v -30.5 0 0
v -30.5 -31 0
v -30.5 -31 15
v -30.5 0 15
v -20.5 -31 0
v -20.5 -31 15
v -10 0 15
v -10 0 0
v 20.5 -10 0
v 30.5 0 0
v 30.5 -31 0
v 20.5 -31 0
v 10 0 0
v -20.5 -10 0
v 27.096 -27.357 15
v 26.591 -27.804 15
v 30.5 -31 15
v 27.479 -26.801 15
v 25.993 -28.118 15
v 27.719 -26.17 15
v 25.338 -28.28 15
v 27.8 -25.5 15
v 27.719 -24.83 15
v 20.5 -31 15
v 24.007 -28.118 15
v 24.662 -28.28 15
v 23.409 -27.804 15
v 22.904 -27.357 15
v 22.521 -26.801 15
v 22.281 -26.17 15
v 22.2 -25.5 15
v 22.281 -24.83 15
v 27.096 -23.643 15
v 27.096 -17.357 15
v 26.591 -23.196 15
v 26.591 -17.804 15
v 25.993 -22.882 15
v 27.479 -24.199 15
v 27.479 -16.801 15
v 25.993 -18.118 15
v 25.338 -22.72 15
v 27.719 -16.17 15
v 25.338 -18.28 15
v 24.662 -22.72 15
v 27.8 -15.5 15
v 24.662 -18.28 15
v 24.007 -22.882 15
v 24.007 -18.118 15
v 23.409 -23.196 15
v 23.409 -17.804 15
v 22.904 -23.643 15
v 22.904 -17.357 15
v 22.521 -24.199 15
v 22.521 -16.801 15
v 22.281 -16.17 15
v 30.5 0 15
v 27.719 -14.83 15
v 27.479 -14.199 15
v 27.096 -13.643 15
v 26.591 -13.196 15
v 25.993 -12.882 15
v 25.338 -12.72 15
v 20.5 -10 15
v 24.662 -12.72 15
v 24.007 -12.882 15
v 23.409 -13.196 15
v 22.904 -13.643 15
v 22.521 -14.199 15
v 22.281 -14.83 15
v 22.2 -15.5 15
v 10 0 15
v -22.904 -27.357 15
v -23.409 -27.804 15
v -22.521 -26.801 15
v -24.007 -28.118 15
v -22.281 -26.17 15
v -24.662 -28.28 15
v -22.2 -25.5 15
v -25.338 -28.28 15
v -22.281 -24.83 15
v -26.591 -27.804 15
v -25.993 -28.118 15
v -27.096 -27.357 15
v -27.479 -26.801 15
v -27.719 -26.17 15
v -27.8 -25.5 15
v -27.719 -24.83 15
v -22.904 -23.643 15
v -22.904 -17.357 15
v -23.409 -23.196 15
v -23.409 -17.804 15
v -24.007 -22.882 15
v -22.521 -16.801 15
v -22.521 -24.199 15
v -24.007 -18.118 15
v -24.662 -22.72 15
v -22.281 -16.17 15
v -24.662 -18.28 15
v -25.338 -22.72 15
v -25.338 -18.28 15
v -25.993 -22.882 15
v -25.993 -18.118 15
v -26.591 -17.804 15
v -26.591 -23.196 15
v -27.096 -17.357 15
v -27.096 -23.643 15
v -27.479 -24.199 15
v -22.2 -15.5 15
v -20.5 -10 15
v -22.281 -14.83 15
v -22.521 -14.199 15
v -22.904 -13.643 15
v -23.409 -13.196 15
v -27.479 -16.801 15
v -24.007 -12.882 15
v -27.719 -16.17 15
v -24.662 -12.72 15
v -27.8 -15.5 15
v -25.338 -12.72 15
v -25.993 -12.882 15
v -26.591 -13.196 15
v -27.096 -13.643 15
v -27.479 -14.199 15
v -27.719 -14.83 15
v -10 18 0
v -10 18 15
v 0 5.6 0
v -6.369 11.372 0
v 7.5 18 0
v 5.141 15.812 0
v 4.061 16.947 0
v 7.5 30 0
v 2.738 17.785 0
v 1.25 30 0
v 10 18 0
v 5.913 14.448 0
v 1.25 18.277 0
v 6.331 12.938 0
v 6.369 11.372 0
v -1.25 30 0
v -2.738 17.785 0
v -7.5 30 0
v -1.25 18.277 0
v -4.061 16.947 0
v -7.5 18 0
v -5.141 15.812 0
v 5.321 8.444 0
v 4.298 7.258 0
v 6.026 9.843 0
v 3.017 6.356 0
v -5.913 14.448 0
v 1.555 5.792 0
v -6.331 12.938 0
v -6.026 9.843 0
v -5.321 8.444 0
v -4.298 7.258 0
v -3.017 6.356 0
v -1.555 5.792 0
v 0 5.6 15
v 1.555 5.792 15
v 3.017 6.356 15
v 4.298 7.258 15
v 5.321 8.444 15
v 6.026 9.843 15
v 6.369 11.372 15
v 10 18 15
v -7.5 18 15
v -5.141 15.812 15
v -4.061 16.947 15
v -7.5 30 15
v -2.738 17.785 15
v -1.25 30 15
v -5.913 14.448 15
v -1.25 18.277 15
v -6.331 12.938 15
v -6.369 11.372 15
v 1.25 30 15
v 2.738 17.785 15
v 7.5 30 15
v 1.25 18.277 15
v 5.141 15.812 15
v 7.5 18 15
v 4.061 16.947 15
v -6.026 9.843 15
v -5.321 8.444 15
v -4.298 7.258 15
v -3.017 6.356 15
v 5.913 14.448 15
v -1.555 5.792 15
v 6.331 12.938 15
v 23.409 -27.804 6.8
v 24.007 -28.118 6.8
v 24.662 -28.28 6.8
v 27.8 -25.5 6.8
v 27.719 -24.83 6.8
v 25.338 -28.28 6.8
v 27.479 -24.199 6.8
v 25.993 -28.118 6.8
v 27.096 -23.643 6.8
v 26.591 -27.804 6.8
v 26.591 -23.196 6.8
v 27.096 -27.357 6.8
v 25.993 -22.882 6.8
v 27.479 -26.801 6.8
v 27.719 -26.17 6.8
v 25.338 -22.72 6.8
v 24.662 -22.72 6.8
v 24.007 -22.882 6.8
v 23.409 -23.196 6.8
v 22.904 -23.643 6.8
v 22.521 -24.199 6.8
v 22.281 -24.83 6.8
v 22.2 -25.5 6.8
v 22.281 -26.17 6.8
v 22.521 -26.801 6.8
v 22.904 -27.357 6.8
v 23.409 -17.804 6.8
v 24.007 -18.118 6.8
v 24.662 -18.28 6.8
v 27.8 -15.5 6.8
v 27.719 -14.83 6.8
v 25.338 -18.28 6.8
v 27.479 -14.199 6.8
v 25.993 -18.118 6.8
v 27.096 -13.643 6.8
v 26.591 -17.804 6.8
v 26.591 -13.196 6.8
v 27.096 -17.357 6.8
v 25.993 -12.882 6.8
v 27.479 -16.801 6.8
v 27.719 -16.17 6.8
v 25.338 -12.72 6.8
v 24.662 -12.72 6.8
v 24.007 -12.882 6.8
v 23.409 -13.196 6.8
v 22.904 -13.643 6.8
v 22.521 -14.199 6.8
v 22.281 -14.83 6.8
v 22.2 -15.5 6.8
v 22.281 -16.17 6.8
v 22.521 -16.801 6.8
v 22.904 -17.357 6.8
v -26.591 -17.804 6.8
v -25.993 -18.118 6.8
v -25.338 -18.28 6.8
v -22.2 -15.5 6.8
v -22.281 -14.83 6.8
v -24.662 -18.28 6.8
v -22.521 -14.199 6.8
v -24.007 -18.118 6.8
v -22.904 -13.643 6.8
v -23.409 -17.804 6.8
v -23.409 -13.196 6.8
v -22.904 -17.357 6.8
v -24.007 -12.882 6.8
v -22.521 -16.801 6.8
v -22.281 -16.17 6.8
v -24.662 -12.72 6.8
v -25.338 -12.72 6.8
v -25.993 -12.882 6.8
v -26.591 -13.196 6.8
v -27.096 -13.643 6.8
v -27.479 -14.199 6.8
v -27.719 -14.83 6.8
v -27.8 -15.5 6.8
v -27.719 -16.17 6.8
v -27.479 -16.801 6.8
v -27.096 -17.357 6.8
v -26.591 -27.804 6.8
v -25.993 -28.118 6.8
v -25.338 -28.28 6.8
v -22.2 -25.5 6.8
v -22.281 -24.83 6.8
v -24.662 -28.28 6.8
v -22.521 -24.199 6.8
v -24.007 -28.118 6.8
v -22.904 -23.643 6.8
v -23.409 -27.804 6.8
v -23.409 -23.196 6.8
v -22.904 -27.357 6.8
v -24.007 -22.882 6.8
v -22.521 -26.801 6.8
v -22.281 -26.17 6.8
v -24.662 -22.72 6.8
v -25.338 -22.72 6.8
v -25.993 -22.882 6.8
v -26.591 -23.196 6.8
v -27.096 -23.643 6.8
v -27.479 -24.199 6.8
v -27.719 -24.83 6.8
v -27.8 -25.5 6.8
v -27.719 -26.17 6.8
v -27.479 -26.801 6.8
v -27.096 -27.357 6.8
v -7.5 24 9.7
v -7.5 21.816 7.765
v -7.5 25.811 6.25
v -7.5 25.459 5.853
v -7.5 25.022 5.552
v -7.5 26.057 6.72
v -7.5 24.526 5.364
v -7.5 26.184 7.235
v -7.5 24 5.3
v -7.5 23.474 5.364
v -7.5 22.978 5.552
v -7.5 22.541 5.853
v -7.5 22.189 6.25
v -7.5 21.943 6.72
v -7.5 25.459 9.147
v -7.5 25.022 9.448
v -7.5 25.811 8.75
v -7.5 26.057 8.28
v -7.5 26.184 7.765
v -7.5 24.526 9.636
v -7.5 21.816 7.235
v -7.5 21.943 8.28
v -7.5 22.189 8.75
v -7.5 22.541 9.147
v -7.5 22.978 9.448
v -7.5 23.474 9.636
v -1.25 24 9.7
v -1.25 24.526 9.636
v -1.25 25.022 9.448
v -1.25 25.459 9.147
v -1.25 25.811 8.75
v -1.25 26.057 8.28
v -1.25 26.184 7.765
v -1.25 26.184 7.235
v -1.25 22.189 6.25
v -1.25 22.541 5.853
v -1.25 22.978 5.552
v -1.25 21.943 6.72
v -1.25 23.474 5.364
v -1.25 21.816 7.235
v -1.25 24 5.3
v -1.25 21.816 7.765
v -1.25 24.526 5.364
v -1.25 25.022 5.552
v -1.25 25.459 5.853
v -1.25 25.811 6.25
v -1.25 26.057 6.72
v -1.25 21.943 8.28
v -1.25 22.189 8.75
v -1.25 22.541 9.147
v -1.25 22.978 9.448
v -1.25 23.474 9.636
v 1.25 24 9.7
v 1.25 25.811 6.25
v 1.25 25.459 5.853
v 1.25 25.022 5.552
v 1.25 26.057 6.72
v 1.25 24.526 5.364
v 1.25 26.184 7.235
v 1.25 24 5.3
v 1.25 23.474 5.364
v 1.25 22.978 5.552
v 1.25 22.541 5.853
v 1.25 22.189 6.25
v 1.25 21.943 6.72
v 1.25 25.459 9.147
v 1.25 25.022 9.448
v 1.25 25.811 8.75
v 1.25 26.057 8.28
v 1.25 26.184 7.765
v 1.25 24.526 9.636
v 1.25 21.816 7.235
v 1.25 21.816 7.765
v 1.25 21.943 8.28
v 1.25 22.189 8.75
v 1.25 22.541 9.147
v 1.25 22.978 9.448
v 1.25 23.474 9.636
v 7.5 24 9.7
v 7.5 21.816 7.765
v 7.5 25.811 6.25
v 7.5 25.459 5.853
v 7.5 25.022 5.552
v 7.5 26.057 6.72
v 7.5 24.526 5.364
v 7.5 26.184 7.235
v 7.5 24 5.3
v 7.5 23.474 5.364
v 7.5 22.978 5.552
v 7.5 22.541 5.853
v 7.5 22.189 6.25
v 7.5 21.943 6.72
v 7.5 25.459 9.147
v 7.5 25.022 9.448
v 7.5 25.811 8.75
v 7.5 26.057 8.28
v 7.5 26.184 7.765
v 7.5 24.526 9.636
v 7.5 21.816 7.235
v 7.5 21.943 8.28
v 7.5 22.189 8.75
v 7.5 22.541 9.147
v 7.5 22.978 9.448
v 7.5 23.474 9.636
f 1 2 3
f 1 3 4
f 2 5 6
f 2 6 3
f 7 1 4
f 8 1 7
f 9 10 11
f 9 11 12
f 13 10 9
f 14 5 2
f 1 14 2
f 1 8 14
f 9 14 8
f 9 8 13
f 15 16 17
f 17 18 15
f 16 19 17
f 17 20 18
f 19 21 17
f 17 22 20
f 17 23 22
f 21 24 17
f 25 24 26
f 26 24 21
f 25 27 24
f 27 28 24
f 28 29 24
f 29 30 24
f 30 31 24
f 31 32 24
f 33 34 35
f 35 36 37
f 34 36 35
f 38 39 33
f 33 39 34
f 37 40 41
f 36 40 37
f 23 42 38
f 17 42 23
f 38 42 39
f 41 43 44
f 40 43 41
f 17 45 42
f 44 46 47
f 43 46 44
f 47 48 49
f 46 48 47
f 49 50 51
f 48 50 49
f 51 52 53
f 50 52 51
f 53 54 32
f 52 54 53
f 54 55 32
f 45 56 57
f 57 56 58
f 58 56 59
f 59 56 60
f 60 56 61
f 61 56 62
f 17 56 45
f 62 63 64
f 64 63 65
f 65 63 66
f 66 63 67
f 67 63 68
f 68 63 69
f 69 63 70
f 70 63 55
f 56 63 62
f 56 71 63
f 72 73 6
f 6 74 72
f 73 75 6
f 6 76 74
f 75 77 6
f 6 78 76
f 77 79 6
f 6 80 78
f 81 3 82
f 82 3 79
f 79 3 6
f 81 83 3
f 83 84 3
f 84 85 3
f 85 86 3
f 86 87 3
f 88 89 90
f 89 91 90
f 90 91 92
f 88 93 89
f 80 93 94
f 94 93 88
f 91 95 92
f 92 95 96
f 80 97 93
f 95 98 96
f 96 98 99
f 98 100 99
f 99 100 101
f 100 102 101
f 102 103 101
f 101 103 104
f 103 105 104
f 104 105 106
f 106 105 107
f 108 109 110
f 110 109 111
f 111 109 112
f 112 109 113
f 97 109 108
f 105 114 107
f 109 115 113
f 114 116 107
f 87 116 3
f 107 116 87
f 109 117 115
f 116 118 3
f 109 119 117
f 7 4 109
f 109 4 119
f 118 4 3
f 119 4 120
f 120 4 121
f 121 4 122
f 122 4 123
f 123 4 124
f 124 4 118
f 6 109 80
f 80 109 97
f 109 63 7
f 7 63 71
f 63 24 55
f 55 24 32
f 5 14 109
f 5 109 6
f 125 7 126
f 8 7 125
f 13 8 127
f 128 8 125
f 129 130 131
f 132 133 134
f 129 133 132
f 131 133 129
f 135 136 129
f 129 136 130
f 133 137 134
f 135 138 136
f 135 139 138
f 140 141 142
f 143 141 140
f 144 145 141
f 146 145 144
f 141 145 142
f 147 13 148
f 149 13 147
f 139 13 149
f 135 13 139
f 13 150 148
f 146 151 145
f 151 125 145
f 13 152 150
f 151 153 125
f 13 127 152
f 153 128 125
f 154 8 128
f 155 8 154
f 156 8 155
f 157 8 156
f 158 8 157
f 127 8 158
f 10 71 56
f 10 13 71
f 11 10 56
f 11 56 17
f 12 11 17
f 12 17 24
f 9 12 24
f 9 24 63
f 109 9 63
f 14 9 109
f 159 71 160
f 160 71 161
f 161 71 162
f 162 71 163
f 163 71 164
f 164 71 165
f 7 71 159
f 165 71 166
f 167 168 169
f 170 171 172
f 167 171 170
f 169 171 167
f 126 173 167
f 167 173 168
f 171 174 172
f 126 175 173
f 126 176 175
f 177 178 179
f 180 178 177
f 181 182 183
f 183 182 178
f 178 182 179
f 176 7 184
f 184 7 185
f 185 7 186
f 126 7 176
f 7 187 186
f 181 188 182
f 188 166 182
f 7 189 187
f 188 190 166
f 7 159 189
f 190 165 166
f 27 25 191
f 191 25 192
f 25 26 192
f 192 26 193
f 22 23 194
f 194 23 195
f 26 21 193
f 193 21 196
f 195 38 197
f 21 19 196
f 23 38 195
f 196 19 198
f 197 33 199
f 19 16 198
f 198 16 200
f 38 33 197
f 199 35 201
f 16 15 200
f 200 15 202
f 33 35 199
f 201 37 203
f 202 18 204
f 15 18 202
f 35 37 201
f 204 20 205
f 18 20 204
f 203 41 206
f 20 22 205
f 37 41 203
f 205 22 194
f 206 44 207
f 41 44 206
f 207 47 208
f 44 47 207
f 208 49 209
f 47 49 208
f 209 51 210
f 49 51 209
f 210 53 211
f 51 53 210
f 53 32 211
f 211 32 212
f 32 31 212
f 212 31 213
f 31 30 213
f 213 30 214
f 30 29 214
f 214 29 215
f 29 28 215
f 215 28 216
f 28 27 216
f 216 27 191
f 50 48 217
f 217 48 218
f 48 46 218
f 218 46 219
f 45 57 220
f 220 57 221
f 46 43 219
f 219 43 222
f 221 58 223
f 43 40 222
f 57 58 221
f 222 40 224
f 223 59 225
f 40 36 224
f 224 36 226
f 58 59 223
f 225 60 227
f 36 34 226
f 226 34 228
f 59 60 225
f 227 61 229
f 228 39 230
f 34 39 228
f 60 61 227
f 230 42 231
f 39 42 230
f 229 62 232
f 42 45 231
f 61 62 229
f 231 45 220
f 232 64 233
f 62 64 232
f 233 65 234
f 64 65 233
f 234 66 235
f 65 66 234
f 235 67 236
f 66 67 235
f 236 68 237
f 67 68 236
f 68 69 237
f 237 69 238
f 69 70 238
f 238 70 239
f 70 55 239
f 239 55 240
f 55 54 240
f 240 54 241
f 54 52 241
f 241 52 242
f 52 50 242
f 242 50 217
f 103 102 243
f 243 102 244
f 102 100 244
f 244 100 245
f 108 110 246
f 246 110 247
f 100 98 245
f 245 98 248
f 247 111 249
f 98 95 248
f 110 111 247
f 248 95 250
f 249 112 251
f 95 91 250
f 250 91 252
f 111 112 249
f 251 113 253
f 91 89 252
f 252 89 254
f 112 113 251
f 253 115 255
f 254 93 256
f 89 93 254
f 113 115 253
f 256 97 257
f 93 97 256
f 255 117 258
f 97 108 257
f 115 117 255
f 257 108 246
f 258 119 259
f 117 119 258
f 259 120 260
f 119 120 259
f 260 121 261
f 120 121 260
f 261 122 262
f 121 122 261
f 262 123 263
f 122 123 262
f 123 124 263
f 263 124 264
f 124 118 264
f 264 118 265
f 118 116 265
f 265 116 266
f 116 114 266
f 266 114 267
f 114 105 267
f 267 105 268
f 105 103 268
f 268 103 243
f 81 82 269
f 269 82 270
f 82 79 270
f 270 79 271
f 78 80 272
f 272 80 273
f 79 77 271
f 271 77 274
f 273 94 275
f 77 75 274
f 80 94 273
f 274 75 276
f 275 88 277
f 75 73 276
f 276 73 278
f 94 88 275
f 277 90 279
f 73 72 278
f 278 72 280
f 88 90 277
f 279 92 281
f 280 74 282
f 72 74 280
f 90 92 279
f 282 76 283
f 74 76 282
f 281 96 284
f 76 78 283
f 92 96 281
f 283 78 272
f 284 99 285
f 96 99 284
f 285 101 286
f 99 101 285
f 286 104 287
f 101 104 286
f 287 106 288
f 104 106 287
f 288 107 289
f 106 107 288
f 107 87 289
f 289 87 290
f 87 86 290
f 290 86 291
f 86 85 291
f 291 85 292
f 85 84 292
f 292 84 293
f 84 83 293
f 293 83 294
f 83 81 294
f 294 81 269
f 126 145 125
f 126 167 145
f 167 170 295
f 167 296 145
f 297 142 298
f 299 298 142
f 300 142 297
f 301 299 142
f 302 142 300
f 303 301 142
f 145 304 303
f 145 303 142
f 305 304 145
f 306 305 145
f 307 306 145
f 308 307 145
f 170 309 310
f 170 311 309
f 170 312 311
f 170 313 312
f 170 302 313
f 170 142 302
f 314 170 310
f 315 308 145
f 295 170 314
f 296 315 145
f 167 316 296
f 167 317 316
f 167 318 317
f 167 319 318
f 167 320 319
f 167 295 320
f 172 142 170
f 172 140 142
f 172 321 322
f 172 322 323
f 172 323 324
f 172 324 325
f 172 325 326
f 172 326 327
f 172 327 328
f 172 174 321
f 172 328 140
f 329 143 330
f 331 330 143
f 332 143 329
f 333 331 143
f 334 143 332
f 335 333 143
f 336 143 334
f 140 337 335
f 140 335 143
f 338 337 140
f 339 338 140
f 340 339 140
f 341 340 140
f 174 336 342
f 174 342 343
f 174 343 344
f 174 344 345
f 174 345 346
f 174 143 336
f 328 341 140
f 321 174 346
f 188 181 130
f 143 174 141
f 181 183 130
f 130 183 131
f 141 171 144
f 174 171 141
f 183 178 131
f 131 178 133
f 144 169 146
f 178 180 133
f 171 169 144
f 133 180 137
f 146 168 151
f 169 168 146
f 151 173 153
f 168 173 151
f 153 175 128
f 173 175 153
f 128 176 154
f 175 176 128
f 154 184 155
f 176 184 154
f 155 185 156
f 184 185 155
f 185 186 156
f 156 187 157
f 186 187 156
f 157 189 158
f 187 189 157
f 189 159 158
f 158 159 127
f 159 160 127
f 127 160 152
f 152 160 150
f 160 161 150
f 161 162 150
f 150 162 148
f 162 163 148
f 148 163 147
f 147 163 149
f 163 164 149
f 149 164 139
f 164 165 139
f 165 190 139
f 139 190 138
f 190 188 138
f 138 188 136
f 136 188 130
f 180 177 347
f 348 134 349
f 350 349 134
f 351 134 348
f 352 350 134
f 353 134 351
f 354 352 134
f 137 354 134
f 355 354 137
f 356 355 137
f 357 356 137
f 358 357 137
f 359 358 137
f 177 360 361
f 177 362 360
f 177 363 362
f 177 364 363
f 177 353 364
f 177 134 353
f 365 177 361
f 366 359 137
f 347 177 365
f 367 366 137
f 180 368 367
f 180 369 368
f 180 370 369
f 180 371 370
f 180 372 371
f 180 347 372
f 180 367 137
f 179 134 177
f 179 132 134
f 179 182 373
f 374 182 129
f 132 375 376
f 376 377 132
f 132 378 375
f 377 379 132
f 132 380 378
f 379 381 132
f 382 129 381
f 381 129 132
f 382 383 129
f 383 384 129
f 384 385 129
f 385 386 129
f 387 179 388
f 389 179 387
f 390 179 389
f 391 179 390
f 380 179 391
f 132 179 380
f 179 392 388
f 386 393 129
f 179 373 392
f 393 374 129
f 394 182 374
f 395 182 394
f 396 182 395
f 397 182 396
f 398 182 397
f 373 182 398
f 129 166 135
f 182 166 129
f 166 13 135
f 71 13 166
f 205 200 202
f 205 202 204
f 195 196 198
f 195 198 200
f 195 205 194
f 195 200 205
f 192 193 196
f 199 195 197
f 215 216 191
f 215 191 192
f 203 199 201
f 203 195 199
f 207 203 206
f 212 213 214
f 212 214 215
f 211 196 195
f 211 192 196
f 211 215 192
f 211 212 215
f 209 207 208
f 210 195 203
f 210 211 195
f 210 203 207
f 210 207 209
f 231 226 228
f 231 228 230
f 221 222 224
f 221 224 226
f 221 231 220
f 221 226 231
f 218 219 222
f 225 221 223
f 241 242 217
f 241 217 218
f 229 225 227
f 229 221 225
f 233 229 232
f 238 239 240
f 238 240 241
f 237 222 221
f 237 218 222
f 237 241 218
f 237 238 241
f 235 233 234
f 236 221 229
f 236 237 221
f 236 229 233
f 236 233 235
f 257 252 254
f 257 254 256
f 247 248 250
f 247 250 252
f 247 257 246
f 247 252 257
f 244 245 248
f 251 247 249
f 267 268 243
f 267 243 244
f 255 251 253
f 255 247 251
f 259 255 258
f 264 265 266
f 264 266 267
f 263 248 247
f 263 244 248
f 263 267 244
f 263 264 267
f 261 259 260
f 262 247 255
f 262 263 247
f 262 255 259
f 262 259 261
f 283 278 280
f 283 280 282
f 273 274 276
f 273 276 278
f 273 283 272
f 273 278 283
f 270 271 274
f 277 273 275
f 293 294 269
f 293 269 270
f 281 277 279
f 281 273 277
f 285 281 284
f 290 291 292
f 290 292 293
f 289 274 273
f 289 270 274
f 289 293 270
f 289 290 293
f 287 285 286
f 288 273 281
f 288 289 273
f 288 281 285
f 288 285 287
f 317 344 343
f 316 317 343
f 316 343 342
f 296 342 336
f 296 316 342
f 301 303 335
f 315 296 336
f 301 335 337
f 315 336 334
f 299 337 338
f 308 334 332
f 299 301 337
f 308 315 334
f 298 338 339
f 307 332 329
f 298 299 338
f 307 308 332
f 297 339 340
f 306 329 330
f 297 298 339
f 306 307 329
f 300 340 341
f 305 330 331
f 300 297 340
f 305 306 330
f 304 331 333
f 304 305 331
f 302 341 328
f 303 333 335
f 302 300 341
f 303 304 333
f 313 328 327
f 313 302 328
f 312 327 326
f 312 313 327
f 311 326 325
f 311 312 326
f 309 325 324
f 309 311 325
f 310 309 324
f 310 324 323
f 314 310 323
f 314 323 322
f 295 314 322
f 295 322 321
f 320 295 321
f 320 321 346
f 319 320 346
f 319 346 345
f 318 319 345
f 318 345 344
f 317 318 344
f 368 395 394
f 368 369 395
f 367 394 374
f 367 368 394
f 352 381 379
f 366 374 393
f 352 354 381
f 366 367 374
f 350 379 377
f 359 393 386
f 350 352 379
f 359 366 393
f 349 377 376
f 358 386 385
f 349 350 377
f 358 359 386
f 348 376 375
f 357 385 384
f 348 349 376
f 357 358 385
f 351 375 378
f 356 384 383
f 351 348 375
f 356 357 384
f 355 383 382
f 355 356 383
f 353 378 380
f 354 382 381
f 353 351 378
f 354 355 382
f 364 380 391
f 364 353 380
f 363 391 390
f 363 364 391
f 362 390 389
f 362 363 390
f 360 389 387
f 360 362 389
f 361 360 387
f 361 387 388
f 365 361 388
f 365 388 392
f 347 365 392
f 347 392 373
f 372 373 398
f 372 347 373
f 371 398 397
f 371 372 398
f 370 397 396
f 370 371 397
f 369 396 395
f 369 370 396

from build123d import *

# Parameters (mm, degrees)
PAD_DEPTH       = 15
SKETCH001_R     = 2.8
POCKET_DEPTH    = 8.2
SKETCH002_W     = 20
SKETCH002_H     = 15
PAD001_DEPTH    = 30
POCKET001_DEPTH = 15.001
SKETCH004_R     = 2.2
HOLE_DEPTH      = 23.678107
HOLE_TIPS_R     = 2.2
SKETCH005_W     = 2.5
SKETCH005_H     = 12
POCKET002_DEPTH = 15.001


with BuildPart() as part:
    # Sketch → Pad (new body)
    with BuildSketch(Plane.XY):
        Polygon((-30.5, -31), (-30.5, 0), (30.5, 0), (30.5, -31), (20.5, -31), (20.5, -10), (-20.5, -10), (-20.5, -31), align=None)
    extrude(amount=PAD_DEPTH)

    # Sketch001 (on Face10 of Pad) → Pocket (cut)
    with BuildSketch(Plane.XY.offset(15)):
        with Locations((-25, -15.5)):
            Circle(SKETCH001_R)
        with Locations((-25, -25.5)):
            Circle(SKETCH001_R)
        with Locations((25, -15.5)):
            Circle(SKETCH001_R)
        with Locations((25, -25.5)):
            Circle(SKETCH001_R)
    extrude(amount=-POCKET_DEPTH, mode=Mode.SUBTRACT)

    # Sketch002 (on Face3 of Pocket) → Pad001 (join)
    with BuildSketch(Plane(origin=(0, 0, 0), x_dir=(-1, 0, 0), z_dir=(0, 1, 0))):
        with Locations((0, 7.5)):
            Rectangle(SKETCH002_W, SKETCH002_H)
    extrude(amount=PAD001_DEPTH)

    # Sketch003 (on Face14 of Pad001) → Pocket001 (cut, through all)
    with BuildSketch(Plane.XY.offset(15)):
        with BuildLine():
            ThreePointArc((-1.25, 18.276743), (0, 5.6), (1.25, 18.276743))
            Line((1.25, 30), (1.25, 18.276743))
            Line((1.25, 30), (-1.25, 30))
            Line((-1.25, 18.276743), (-1.25, 30))
        make_face()
    extrude(amount=-POCKET001_DEPTH, mode=Mode.SUBTRACT)

    # Sketch004 (on Face24 of Pocket001) → Hole (cut)
    with BuildSketch(Plane.YZ.offset(10)):
        with Locations((24, 7.5)):
            Circle(SKETCH004_R)
    extrude(amount=-HOLE_DEPTH, mode=Mode.SUBTRACT)

    # Hole tips → Hole tip 1 section 0
    with BuildSketch(Plane.YZ.offset(-13.678107), mode=Mode.PRIVATE) as hole_tip_1_s0:
        with Locations((24, 7.5)):
            Circle(HOLE_TIPS_R)
    loft([hole_tip_1_s0.sketch, Vertex(-15, 24, 7.5)], mode=Mode.SUBTRACT)

    # Sketch005 (on Face14 of Hole) → Pocket002 (cut, through all)
    with BuildSketch(Plane.XY.offset(15)):
        with Locations((-8.75, 24)):
            Rectangle(SKETCH005_W, SKETCH005_H)
        with Locations((8.75, 24)):
            Rectangle(SKETCH005_W, SKETCH005_H)
    extrude(amount=-POCKET002_DEPTH, mode=Mode.SUBTRACT)


solid = part.part
